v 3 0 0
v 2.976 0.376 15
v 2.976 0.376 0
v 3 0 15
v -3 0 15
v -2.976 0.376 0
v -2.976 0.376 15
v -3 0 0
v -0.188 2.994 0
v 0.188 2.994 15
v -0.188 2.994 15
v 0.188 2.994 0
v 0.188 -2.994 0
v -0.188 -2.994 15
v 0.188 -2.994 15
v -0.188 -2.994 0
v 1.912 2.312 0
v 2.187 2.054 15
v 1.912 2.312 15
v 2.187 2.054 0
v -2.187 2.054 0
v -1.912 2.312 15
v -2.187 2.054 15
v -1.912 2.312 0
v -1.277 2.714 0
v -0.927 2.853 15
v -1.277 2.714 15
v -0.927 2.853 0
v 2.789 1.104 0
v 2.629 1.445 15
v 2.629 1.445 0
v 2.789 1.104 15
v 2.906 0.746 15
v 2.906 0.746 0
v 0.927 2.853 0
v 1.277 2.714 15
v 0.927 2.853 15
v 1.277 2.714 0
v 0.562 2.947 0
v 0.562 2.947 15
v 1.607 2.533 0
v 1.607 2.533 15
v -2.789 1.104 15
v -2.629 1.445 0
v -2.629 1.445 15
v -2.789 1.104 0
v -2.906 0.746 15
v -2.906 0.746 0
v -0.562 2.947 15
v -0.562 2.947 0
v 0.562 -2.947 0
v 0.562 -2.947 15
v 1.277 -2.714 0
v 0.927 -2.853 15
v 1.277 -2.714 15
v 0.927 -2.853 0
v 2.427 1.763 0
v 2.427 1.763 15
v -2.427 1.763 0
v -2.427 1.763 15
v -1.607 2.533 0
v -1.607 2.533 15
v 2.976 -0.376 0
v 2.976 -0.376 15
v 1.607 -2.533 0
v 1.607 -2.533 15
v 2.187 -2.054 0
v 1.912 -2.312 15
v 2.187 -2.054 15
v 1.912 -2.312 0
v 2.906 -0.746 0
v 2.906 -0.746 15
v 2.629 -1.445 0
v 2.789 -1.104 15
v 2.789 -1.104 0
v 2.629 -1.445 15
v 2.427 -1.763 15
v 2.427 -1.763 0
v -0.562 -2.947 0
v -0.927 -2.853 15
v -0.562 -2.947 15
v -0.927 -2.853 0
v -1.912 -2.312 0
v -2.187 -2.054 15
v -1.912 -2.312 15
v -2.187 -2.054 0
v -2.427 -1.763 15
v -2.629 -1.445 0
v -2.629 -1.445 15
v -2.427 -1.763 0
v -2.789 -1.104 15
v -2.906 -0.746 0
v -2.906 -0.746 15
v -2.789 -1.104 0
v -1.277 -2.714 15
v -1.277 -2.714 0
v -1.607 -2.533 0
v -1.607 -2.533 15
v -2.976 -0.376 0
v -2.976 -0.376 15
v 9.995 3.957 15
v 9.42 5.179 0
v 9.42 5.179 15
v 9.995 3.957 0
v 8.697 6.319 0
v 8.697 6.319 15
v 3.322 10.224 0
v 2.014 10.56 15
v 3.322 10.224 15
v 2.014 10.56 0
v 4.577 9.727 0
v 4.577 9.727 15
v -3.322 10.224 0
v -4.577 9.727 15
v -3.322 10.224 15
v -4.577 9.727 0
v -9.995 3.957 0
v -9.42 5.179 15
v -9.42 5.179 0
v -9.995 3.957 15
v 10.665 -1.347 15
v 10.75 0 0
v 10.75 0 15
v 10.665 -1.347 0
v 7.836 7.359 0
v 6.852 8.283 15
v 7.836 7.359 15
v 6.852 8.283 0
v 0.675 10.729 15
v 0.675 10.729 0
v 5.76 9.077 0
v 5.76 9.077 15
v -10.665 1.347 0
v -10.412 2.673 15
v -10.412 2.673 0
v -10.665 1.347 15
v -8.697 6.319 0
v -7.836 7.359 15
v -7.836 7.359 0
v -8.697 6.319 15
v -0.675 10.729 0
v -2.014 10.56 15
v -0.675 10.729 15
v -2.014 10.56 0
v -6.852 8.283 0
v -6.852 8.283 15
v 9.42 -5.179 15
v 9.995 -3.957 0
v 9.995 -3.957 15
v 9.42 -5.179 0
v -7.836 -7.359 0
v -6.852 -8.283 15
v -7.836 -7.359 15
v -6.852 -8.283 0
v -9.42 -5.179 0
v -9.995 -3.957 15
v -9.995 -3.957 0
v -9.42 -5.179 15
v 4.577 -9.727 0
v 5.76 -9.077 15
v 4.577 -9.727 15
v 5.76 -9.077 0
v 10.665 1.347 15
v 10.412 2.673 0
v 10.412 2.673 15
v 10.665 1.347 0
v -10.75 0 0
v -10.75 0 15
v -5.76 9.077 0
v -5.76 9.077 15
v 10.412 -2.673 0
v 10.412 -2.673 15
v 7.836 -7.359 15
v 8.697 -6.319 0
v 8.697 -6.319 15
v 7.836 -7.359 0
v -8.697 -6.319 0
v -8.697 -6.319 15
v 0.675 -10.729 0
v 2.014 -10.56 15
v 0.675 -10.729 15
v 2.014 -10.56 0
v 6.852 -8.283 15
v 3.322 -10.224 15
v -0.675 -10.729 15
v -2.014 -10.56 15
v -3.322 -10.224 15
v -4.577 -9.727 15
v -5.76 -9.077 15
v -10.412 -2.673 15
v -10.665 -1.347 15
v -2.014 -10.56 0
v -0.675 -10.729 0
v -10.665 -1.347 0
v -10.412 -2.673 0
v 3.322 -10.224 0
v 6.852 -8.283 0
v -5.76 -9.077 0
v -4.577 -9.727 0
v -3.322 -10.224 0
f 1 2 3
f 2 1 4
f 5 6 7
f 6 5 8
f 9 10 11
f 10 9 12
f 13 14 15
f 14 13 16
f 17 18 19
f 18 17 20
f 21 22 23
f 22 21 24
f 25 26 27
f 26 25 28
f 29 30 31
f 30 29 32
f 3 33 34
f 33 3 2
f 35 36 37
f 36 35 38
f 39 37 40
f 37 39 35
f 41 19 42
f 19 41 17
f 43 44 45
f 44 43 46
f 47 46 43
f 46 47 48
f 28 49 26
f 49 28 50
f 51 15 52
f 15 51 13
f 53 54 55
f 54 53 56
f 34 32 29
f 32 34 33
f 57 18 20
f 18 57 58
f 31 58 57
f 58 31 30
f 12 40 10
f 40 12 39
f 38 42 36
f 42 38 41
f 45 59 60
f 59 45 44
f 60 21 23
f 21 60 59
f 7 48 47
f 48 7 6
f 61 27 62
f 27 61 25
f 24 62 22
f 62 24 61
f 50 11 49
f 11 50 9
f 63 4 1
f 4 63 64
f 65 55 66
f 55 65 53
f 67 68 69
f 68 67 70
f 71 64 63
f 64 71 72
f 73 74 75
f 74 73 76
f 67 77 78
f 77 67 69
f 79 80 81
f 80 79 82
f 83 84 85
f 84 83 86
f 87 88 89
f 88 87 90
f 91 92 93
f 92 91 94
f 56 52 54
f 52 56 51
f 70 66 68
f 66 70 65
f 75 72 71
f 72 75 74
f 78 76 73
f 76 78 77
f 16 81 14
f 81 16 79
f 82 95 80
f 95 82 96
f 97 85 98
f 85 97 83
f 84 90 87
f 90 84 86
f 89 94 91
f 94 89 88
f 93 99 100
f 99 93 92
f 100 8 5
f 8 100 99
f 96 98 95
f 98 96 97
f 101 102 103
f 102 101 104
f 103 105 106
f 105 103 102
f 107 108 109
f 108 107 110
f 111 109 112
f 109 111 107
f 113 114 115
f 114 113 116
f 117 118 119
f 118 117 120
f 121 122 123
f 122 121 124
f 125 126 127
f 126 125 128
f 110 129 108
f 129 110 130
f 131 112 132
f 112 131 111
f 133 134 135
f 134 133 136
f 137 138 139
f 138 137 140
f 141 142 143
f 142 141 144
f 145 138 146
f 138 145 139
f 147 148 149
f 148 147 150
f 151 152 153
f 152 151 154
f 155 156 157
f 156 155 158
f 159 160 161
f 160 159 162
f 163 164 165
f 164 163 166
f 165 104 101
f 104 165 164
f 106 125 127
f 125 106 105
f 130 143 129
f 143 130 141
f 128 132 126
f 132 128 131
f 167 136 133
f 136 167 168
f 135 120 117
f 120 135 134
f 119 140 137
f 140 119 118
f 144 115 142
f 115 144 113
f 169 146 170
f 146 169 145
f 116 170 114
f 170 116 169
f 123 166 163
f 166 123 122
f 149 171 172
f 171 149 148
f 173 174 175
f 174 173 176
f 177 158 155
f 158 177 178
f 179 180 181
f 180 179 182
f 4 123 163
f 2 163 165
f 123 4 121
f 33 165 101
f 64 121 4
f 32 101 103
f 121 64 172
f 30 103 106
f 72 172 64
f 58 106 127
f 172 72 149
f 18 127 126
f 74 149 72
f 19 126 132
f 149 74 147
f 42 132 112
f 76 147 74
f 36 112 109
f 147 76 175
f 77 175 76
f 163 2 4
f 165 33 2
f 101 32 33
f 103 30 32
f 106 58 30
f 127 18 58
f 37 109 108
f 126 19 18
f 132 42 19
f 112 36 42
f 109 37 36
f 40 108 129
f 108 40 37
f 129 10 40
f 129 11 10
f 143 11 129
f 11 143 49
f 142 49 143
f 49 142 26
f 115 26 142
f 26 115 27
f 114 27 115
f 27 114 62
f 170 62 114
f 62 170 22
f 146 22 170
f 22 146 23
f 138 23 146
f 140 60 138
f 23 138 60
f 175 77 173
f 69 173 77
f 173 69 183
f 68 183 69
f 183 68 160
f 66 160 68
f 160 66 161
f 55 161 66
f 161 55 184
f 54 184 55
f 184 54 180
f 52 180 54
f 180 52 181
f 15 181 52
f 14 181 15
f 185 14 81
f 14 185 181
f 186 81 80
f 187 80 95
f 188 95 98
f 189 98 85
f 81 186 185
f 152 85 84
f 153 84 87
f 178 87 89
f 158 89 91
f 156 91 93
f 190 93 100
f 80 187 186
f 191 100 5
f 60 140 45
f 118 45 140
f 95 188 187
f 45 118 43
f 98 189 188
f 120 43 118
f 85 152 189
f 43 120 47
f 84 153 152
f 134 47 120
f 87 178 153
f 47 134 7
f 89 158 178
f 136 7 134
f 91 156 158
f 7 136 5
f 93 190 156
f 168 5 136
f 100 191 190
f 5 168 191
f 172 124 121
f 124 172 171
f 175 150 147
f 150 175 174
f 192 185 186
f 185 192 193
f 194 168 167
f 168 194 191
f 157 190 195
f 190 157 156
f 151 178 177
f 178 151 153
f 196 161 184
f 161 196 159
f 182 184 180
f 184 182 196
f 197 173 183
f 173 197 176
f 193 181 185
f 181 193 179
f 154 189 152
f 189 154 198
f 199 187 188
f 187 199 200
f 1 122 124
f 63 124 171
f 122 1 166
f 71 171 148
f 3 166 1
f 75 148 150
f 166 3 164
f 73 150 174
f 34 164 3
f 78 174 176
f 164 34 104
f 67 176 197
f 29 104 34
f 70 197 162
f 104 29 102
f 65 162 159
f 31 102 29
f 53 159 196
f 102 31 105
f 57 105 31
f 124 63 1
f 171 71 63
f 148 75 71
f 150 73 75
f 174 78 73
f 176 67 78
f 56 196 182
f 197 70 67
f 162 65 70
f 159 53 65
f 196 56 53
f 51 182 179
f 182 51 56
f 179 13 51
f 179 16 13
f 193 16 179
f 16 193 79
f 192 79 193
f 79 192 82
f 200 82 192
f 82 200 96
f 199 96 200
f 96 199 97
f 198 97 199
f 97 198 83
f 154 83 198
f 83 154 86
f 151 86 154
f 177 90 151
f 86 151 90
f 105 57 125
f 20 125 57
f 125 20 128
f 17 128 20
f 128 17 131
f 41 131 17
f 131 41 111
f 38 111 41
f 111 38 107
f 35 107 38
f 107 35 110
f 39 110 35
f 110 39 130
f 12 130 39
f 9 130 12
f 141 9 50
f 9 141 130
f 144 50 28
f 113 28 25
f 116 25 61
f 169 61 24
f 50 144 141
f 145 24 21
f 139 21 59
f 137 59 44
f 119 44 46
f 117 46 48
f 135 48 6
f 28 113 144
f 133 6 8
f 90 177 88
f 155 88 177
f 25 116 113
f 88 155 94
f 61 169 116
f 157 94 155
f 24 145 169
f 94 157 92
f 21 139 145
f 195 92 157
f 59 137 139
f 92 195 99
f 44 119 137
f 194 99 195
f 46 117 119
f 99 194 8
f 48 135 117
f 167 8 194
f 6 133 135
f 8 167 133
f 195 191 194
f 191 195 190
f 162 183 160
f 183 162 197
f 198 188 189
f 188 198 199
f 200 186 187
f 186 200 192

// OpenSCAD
$fn = 50;


difference() {
	union() {
		*color(alpha = 1.0000000000, c = "gray") {
			translate(v = [0, 7, 0]) {
				linear_extrude(height = 1) {
					text(font = "Arial:style=Bold", halign = "center", size = 4.5000000000, text = "COMMENT circle main", valign = "center");
				}
			}
		}
		cylinder(h = 15, r = 10.7500000000);
	}
	union() {
		*color(alpha = 1.0000000000, c = "gray") {
			translate(v = [0, 7, 0]) {
				linear_extrude(height = 1) {
					text(font = "Arial:style=Bold", halign = "center", size = 4.5000000000, text = "COMMENT holes main", valign = "center");
				}
			}
		}
		translate(v = [0.0000000000, 0.0000000000, -50.0000000000]) {
			cylinder(h = 100, r = 3.0000000000);
		}
		translate(v = [0.0000000000, 0.0000000000, -50.0000000000]) {
			cylinder(h = 100, r = 3.0000000000);
		}
		translate(v = [0.0000000000, 0.0000000000, -50.0000000000]) {
			cylinder(h = 100, r = 3.0000000000);
		}
		translate(v = [0.0000000000, 0.0000000000, -50.0000000000]) {
			cylinder(h = 100, r = 1.5000000000);
		}
		translate(v = [0.0000000000, 0.0000000000, -50.0000000000]) {
			cylinder(h = 100, r = 1.5000000000);
		}
		translate(v = [0.0000000000, 0.0000000000, -50.0000000000]) {
			cylinder(h = 100, r = 1.5000000000);
		}
	}
}
